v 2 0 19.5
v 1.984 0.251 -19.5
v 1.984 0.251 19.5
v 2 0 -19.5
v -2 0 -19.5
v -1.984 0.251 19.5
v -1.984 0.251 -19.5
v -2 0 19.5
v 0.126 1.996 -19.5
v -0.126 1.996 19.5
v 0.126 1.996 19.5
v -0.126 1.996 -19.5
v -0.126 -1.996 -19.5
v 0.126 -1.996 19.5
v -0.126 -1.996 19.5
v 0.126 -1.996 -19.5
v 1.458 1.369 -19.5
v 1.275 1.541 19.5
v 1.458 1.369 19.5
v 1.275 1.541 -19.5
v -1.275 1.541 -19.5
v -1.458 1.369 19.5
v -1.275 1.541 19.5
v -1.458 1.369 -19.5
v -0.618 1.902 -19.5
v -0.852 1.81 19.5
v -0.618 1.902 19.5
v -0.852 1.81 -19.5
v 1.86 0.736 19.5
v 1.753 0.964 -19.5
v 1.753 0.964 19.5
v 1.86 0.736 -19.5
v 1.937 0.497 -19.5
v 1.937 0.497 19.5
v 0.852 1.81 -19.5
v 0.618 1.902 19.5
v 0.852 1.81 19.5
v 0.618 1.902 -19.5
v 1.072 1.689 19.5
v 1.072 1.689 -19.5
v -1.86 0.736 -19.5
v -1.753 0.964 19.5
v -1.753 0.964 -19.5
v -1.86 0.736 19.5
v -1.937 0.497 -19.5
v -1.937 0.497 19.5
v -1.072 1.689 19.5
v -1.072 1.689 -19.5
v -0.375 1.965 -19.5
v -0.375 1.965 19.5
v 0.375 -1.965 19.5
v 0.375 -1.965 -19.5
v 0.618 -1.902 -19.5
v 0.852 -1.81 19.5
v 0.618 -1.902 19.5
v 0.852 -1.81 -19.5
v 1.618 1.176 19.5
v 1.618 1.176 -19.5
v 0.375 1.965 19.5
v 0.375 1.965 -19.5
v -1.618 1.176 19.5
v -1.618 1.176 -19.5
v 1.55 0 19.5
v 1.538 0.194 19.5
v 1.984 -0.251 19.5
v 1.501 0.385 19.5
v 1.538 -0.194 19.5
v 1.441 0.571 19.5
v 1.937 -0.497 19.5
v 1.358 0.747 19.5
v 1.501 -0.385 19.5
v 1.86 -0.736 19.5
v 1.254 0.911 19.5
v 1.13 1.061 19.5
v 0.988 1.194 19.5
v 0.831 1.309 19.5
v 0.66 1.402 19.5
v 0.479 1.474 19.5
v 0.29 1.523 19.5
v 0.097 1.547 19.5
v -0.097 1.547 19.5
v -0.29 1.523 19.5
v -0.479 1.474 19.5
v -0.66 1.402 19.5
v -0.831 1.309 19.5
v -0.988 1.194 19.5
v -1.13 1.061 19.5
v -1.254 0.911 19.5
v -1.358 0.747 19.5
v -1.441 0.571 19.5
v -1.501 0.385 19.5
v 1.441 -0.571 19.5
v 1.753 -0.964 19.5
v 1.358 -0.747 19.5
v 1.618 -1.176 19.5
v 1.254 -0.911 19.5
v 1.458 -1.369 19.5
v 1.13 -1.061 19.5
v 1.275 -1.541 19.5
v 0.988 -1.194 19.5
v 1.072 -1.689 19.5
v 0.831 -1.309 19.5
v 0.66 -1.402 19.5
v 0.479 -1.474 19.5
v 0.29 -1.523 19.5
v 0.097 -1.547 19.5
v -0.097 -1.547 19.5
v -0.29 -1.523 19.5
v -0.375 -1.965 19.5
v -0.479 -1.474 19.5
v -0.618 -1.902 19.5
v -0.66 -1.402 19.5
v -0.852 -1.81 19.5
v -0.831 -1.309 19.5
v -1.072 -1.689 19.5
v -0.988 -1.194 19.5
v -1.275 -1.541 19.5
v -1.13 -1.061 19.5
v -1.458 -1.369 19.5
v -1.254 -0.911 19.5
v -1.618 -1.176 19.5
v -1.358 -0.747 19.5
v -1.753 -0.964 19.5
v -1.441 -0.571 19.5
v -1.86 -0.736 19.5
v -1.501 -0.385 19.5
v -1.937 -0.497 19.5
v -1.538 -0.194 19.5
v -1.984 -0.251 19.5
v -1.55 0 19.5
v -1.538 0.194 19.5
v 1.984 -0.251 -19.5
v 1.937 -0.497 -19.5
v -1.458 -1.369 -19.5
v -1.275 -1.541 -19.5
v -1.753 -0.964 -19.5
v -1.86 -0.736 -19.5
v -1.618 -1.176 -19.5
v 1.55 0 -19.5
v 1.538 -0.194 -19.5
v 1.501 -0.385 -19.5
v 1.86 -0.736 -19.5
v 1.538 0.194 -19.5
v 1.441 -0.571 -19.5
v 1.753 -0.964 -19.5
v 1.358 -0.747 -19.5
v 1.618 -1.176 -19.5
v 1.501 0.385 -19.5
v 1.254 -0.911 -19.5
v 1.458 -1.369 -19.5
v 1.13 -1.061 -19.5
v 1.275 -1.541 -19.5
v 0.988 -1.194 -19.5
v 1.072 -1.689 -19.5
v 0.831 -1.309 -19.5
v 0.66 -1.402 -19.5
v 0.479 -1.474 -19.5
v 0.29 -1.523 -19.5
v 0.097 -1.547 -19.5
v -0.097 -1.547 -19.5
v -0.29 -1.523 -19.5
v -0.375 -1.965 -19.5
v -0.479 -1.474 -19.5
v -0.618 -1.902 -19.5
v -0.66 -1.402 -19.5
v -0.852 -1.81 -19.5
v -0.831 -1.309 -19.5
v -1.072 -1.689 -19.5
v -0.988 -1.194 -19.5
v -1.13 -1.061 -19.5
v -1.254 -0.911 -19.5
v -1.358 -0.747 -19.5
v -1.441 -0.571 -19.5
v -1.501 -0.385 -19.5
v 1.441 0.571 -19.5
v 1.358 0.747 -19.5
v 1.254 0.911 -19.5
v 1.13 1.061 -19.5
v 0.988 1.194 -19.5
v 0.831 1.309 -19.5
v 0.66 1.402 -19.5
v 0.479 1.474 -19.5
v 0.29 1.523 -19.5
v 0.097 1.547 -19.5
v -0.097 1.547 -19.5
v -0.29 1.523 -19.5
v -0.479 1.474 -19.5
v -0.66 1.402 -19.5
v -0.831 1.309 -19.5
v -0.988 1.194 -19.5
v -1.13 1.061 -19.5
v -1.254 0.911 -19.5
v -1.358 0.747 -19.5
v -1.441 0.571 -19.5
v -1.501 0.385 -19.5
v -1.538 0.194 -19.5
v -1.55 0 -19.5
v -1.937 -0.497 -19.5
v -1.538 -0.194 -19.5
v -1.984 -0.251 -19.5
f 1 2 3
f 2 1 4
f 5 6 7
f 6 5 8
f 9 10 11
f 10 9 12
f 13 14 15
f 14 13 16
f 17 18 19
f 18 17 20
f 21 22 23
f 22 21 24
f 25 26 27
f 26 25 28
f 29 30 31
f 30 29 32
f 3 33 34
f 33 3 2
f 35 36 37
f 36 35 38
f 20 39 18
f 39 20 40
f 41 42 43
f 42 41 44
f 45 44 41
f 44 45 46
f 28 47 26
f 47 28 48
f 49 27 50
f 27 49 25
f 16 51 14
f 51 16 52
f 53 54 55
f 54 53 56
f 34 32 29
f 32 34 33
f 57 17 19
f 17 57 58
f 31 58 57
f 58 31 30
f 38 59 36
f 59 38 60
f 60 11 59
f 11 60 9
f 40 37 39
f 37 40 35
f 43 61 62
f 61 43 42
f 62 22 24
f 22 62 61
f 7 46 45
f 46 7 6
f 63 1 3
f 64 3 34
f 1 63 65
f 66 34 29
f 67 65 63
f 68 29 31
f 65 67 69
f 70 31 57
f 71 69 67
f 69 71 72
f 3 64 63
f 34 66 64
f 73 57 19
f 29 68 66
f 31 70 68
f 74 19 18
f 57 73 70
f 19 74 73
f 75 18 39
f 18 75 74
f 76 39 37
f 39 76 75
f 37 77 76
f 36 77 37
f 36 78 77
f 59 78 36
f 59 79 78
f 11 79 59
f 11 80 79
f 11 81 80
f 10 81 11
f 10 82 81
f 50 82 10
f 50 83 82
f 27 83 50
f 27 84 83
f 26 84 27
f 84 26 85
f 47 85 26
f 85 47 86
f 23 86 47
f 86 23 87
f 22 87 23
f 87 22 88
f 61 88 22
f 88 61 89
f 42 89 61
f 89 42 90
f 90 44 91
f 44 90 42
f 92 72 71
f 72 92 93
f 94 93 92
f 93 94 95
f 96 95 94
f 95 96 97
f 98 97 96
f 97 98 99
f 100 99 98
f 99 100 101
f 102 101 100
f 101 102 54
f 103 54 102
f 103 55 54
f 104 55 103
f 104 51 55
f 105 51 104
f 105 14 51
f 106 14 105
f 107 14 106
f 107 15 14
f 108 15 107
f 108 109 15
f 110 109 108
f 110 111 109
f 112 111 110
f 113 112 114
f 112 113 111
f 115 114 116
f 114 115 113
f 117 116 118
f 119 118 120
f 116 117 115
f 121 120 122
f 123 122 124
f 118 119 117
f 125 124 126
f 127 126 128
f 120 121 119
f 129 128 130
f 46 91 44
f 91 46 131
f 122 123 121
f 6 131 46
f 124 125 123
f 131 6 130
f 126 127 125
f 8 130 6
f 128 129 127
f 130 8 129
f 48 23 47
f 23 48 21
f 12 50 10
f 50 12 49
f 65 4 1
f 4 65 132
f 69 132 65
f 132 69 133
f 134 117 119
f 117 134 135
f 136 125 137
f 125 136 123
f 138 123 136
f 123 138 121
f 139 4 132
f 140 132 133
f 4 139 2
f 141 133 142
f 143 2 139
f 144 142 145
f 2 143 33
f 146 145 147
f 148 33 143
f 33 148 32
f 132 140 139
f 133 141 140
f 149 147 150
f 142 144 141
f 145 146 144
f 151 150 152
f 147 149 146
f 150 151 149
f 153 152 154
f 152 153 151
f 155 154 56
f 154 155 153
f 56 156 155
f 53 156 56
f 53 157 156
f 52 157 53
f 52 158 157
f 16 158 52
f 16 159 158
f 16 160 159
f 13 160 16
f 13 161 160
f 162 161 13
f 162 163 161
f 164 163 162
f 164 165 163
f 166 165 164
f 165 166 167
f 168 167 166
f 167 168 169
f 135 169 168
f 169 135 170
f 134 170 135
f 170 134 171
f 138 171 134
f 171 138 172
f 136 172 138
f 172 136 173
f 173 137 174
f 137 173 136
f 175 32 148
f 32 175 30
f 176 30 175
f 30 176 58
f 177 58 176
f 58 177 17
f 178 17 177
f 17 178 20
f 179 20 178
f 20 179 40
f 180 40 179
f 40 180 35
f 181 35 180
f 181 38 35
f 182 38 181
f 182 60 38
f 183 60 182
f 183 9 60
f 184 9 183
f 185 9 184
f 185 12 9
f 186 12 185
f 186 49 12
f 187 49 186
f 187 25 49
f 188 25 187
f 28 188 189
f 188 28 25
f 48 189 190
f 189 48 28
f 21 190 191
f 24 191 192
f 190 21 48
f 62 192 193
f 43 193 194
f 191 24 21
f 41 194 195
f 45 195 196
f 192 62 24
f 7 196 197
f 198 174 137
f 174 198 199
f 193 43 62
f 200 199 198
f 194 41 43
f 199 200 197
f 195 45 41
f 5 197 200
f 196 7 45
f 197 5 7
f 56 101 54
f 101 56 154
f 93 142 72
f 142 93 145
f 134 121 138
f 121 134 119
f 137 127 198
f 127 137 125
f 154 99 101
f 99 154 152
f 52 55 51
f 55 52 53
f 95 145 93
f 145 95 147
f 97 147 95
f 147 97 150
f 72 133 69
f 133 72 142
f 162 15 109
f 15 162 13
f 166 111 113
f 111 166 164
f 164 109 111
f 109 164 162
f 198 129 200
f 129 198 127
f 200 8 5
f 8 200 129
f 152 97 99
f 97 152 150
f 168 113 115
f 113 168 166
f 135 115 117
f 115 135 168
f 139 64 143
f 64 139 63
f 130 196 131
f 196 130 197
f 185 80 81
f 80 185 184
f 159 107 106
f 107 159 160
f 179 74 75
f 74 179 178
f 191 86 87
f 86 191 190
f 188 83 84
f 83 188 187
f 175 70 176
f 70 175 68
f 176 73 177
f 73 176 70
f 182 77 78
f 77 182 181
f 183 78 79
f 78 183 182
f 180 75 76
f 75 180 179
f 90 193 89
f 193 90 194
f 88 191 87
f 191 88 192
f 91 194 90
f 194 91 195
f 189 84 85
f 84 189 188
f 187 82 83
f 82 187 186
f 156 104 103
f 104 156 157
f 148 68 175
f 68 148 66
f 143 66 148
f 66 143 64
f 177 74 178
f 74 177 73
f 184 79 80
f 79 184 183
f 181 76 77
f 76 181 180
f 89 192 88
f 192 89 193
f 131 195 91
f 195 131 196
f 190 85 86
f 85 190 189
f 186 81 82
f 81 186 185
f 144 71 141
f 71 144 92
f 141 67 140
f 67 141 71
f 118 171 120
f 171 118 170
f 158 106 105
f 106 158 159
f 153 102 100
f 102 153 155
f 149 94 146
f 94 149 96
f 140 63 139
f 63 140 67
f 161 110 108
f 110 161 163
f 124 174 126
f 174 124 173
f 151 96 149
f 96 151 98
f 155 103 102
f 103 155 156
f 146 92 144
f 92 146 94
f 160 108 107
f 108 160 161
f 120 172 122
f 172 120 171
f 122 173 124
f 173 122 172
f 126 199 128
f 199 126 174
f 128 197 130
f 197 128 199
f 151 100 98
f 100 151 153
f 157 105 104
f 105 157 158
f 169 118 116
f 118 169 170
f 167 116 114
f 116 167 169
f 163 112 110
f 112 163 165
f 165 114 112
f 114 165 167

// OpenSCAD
$fn = 50;


difference() {
	union() {
		translate(v = [0, 0, -19.5000000000]) {
			cylinder(h = 39, r = 2.0000000000);
		}
	}
	union() {
		translate(v = [0, 0, -100.0000000000]) {
			cylinder(h = 200, r = 1.5500000000);
		}
	}
}
